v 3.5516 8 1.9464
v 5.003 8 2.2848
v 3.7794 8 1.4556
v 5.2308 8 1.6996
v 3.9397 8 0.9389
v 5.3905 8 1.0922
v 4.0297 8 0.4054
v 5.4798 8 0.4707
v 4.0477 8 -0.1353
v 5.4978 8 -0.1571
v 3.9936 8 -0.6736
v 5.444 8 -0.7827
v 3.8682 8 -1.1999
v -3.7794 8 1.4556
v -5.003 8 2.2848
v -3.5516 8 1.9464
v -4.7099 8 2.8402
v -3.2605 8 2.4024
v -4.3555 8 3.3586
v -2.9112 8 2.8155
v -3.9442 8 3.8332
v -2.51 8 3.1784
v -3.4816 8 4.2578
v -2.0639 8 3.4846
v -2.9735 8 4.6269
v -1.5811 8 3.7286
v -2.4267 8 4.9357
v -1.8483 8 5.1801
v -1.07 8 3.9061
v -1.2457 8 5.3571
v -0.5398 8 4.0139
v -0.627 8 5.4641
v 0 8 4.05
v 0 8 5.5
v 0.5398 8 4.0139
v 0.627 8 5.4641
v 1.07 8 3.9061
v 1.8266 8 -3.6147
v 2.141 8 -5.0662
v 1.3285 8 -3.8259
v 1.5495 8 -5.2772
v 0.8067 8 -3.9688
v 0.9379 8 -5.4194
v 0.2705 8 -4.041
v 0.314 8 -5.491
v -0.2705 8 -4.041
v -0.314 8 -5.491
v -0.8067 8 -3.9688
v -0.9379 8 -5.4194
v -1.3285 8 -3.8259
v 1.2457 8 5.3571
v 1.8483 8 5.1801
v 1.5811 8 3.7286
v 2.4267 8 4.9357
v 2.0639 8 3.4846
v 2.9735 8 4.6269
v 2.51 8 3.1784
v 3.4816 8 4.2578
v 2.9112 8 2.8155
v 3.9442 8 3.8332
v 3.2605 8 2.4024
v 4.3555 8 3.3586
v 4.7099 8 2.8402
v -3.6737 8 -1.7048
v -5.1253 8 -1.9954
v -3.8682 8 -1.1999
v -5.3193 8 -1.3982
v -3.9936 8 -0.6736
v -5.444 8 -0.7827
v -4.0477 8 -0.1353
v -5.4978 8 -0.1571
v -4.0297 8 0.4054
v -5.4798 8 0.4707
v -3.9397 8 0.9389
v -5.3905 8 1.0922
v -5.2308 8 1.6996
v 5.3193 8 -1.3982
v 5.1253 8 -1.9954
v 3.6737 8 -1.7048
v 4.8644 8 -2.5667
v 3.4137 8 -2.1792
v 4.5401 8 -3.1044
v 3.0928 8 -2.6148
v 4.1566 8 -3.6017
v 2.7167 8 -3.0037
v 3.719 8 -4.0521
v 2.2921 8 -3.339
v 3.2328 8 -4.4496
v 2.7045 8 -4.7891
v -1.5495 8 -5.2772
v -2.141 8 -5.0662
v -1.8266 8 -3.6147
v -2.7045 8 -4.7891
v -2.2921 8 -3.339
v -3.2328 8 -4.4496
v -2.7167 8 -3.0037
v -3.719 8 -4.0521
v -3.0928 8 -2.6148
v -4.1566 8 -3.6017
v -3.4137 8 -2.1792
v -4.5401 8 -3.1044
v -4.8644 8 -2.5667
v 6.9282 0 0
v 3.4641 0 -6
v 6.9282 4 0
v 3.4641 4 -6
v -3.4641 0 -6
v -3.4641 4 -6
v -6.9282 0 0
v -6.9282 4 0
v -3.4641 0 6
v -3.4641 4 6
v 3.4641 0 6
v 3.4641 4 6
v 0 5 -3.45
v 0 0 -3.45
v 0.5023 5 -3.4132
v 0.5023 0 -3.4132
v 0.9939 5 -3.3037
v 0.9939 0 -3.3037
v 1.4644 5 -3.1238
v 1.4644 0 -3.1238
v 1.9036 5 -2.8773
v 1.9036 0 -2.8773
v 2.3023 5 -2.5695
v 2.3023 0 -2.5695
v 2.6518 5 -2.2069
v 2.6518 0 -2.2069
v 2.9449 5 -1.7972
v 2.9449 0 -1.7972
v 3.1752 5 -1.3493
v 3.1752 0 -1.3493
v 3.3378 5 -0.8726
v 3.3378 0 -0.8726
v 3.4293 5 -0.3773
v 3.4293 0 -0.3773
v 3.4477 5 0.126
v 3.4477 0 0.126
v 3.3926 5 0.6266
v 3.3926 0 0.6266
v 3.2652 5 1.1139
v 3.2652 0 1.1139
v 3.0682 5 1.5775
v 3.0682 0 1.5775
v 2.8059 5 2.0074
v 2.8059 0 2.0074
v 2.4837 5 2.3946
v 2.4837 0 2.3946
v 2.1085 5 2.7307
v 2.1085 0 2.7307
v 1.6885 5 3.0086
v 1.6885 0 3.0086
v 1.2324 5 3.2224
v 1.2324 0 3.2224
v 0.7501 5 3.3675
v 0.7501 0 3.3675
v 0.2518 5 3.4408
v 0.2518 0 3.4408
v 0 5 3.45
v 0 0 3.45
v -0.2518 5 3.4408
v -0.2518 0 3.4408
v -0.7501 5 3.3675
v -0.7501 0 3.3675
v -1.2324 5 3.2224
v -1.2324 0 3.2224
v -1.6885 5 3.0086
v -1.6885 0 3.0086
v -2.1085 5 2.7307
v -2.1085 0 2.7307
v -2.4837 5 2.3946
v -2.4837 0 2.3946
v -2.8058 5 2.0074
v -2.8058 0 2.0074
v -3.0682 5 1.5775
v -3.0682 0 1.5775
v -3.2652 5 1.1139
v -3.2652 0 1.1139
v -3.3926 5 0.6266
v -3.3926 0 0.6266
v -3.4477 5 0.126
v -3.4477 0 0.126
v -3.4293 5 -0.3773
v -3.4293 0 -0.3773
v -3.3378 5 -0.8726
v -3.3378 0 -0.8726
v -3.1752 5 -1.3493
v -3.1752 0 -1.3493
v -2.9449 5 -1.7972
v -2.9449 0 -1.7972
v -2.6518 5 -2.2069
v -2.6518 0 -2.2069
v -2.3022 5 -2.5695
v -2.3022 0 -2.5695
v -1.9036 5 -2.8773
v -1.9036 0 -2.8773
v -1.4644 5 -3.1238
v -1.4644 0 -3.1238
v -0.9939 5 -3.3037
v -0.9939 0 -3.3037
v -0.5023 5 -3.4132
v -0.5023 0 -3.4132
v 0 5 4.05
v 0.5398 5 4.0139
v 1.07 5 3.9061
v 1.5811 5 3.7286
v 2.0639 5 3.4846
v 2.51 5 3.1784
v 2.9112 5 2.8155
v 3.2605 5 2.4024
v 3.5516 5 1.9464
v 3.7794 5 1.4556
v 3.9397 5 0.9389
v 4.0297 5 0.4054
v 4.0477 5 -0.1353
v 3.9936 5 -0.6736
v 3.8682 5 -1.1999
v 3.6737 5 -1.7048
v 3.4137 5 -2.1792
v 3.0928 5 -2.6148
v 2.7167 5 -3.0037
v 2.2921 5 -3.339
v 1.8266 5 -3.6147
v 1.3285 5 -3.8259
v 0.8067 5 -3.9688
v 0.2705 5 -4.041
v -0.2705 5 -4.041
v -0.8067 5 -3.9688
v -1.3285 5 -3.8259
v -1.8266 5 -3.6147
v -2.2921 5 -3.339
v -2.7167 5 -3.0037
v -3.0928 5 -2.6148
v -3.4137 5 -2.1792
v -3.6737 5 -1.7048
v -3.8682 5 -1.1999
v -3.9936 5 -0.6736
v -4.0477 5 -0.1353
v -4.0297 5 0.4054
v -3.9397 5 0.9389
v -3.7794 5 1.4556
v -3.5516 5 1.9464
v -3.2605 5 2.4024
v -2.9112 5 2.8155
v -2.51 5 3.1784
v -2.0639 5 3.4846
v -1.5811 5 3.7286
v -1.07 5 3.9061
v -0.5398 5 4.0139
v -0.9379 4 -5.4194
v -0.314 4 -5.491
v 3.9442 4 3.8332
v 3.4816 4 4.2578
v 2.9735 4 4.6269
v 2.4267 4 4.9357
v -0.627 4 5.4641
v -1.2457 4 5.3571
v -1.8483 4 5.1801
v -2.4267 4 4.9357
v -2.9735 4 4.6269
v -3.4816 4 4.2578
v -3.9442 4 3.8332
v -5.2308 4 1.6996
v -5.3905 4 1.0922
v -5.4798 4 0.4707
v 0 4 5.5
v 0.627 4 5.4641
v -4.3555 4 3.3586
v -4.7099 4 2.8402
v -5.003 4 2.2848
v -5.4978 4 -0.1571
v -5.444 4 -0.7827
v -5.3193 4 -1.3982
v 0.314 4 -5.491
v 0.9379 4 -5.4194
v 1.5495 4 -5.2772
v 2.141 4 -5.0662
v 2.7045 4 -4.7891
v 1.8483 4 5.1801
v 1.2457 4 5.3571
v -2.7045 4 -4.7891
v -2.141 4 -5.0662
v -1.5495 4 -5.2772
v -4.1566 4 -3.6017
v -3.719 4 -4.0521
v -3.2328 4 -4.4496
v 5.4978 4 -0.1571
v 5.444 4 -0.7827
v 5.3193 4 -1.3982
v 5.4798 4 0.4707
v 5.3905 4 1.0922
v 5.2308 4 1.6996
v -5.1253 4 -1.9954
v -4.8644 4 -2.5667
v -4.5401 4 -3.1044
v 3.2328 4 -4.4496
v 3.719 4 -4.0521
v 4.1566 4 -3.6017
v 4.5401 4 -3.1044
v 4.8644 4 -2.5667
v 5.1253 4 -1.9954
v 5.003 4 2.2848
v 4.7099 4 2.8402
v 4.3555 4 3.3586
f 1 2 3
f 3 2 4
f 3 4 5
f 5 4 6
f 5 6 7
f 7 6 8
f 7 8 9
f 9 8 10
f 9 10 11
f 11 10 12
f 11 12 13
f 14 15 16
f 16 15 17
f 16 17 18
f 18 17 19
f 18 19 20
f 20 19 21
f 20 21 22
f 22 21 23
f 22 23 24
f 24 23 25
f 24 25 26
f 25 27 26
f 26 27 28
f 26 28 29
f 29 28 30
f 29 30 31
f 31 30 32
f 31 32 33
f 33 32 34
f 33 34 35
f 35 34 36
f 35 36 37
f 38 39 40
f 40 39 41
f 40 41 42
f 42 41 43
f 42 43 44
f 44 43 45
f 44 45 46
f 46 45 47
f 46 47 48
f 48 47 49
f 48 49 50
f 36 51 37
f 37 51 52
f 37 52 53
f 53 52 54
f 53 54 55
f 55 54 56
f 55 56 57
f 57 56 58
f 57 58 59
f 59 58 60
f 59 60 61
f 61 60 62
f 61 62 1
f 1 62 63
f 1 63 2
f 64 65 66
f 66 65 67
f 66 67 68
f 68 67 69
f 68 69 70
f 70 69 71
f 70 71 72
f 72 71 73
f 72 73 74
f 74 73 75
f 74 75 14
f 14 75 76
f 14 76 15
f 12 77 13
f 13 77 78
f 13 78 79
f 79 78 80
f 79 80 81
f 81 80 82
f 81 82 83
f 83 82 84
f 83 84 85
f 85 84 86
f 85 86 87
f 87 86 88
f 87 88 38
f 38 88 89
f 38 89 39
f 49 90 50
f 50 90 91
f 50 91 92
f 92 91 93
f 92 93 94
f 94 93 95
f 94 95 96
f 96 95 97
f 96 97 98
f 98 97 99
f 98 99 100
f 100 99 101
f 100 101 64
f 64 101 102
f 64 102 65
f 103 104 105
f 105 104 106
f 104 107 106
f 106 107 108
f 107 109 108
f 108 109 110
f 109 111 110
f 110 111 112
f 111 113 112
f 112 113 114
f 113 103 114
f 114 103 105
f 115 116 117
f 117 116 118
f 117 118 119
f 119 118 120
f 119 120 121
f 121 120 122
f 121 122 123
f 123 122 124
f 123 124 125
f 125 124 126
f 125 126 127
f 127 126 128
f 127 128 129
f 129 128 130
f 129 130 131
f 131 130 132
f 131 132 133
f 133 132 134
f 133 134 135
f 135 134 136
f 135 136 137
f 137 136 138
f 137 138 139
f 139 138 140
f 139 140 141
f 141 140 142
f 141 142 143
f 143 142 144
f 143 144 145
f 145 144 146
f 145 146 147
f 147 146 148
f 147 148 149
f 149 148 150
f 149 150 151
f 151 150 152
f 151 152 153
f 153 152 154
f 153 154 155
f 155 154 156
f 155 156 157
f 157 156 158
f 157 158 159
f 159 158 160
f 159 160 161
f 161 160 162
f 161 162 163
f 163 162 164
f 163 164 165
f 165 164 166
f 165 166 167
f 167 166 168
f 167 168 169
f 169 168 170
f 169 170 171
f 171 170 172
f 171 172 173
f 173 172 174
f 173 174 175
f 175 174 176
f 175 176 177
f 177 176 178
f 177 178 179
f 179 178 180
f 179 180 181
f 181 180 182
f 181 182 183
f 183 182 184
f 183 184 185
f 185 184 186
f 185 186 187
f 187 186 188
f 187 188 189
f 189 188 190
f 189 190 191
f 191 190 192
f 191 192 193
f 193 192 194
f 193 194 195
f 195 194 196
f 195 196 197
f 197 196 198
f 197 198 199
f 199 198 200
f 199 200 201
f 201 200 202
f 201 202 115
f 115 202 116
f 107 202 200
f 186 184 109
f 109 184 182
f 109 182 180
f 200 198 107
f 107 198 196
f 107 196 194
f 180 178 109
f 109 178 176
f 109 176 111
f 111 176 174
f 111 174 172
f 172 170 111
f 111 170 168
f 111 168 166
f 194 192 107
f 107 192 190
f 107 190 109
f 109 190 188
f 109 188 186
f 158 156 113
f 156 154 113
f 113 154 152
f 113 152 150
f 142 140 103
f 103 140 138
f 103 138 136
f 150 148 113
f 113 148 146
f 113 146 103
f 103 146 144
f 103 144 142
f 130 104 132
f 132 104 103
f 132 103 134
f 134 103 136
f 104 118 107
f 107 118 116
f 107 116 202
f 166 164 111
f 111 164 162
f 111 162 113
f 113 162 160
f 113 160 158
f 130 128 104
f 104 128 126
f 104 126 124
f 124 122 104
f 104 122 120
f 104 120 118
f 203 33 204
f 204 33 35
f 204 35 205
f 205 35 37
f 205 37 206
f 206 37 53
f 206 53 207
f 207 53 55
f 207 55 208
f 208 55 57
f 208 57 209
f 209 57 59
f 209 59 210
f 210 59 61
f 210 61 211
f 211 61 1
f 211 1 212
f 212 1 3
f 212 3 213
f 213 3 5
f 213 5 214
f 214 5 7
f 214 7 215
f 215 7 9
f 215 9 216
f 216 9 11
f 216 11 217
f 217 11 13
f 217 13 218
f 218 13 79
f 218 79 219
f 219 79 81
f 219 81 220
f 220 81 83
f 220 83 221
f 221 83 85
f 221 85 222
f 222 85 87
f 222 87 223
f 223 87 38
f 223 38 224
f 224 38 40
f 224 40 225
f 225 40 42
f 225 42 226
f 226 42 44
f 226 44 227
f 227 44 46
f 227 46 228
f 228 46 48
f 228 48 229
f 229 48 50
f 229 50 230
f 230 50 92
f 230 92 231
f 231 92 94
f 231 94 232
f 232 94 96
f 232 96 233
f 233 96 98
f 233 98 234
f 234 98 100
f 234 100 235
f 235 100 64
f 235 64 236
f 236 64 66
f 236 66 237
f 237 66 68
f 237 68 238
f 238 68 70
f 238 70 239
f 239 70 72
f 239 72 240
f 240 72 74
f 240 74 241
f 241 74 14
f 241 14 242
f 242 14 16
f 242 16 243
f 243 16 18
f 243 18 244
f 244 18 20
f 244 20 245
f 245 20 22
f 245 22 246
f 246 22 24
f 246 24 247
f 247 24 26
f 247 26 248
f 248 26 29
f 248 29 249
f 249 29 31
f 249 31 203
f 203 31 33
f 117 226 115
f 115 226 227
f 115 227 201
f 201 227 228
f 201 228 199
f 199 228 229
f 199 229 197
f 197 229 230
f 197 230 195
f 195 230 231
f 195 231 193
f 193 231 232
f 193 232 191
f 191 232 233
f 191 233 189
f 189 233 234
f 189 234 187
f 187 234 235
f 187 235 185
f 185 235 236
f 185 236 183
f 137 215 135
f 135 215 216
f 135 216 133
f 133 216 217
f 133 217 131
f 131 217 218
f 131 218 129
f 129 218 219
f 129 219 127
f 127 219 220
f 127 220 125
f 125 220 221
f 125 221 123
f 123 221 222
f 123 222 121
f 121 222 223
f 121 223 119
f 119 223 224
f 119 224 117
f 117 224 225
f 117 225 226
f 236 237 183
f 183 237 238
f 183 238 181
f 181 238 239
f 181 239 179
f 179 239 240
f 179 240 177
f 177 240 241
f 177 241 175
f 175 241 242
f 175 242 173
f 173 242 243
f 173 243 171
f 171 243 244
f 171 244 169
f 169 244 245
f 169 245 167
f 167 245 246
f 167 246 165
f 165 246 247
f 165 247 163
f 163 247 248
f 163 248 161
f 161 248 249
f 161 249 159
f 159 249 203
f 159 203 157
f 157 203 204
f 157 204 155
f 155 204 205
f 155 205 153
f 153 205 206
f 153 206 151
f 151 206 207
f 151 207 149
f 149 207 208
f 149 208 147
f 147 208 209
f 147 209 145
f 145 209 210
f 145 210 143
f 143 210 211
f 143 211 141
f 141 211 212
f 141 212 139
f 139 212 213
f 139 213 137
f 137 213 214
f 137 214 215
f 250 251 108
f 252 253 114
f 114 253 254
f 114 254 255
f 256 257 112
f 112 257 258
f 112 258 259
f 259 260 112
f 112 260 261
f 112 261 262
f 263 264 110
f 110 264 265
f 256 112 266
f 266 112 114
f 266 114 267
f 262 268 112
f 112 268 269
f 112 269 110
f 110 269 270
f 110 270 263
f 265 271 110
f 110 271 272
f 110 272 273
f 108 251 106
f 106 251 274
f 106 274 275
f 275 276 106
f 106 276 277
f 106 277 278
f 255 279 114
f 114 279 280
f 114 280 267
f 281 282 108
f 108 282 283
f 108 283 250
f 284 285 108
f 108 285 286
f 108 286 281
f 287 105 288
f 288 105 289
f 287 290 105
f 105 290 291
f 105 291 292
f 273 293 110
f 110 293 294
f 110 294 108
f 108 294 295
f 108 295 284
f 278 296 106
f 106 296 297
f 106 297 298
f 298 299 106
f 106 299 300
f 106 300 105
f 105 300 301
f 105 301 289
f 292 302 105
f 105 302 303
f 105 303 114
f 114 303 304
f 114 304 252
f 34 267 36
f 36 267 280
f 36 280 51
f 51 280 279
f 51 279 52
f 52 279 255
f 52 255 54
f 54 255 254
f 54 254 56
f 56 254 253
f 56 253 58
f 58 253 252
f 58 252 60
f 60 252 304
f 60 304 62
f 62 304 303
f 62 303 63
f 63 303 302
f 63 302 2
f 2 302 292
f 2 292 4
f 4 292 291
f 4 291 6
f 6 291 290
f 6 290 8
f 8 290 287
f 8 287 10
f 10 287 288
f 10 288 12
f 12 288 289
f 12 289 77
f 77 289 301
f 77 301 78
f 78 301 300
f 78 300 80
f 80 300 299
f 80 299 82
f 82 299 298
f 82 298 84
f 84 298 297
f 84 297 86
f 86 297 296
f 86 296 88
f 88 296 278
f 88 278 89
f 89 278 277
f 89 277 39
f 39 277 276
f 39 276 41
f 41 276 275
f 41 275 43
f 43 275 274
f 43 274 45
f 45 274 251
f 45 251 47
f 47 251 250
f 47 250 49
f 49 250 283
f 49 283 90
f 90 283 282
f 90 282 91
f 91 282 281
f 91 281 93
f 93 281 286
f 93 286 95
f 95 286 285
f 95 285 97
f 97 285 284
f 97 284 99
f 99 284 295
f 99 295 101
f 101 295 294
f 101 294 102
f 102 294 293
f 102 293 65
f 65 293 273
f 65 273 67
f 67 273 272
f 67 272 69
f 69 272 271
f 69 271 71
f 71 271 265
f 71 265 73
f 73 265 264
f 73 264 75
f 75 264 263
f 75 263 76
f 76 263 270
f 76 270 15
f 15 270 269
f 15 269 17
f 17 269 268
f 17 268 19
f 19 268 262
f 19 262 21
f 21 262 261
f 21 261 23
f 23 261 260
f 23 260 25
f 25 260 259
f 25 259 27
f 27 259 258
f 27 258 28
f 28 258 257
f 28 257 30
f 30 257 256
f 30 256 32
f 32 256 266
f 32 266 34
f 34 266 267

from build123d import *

# Parameters (mm, degrees)
SKETCH1_R           = 3.45
BOSS_EXTRUDE1_DEPTH = 8
SKETCH2_R           = 4.05
CUT_EXTRUDE1_DEPTH  = 3
SKETCH3_R           = 10
SKETCH3_R_2         = 5.5
CUT_EXTRUDE3_DEPTH  = 4


with BuildPart() as part:
    # Sketch1 → Boss-Extrude1 (new body)
    with BuildSketch(Plane(origin=(0, 0, 0), x_dir=(1, 0, 0), z_dir=(0, 1, 0))):
        Polygon((3.464101615, 6), (-3.464101615, 6), (-6.92820323, 0), (-3.464101615, -6), (3.464101615, -6), (6.92820323, 0), align=None)
        Circle(SKETCH1_R, mode=Mode.SUBTRACT)
    extrude(amount=BOSS_EXTRUDE1_DEPTH)

    # Sketch2 → Cut-Extrude1 (cut)
    with BuildSketch(Plane(origin=(0, 8, 0), x_dir=(1, 0, 0), z_dir=(0, 1, 0))):
        Circle(SKETCH2_R)
    extrude(amount=-CUT_EXTRUDE1_DEPTH, mode=Mode.SUBTRACT)

    # Sketch3 → Cut-Extrude3 (cut)
    with BuildSketch(Plane(origin=(0, 8, 0), x_dir=(1, 0, 0), z_dir=(0, 1, 0))):
        Circle(SKETCH3_R)
        Polygon((6.92820323, 0), (3.464101615, 6), (-3.464101615, 6), (-6.92820323, 0), (-3.464101615, -6), (3.464101615, -6), align=None, mode=Mode.SUBTRACT)
        Polygon((3.464101615, -6), (6.92820323, 0), (3.464101615, 6), (-3.464101615, 6), (-6.92820323, 0), (-3.464101615, -6), align=None)
        Circle(SKETCH3_R_2, mode=Mode.SUBTRACT)
    extrude(amount=-CUT_EXTRUDE3_DEPTH, mode=Mode.SUBTRACT)


solid = part.part
